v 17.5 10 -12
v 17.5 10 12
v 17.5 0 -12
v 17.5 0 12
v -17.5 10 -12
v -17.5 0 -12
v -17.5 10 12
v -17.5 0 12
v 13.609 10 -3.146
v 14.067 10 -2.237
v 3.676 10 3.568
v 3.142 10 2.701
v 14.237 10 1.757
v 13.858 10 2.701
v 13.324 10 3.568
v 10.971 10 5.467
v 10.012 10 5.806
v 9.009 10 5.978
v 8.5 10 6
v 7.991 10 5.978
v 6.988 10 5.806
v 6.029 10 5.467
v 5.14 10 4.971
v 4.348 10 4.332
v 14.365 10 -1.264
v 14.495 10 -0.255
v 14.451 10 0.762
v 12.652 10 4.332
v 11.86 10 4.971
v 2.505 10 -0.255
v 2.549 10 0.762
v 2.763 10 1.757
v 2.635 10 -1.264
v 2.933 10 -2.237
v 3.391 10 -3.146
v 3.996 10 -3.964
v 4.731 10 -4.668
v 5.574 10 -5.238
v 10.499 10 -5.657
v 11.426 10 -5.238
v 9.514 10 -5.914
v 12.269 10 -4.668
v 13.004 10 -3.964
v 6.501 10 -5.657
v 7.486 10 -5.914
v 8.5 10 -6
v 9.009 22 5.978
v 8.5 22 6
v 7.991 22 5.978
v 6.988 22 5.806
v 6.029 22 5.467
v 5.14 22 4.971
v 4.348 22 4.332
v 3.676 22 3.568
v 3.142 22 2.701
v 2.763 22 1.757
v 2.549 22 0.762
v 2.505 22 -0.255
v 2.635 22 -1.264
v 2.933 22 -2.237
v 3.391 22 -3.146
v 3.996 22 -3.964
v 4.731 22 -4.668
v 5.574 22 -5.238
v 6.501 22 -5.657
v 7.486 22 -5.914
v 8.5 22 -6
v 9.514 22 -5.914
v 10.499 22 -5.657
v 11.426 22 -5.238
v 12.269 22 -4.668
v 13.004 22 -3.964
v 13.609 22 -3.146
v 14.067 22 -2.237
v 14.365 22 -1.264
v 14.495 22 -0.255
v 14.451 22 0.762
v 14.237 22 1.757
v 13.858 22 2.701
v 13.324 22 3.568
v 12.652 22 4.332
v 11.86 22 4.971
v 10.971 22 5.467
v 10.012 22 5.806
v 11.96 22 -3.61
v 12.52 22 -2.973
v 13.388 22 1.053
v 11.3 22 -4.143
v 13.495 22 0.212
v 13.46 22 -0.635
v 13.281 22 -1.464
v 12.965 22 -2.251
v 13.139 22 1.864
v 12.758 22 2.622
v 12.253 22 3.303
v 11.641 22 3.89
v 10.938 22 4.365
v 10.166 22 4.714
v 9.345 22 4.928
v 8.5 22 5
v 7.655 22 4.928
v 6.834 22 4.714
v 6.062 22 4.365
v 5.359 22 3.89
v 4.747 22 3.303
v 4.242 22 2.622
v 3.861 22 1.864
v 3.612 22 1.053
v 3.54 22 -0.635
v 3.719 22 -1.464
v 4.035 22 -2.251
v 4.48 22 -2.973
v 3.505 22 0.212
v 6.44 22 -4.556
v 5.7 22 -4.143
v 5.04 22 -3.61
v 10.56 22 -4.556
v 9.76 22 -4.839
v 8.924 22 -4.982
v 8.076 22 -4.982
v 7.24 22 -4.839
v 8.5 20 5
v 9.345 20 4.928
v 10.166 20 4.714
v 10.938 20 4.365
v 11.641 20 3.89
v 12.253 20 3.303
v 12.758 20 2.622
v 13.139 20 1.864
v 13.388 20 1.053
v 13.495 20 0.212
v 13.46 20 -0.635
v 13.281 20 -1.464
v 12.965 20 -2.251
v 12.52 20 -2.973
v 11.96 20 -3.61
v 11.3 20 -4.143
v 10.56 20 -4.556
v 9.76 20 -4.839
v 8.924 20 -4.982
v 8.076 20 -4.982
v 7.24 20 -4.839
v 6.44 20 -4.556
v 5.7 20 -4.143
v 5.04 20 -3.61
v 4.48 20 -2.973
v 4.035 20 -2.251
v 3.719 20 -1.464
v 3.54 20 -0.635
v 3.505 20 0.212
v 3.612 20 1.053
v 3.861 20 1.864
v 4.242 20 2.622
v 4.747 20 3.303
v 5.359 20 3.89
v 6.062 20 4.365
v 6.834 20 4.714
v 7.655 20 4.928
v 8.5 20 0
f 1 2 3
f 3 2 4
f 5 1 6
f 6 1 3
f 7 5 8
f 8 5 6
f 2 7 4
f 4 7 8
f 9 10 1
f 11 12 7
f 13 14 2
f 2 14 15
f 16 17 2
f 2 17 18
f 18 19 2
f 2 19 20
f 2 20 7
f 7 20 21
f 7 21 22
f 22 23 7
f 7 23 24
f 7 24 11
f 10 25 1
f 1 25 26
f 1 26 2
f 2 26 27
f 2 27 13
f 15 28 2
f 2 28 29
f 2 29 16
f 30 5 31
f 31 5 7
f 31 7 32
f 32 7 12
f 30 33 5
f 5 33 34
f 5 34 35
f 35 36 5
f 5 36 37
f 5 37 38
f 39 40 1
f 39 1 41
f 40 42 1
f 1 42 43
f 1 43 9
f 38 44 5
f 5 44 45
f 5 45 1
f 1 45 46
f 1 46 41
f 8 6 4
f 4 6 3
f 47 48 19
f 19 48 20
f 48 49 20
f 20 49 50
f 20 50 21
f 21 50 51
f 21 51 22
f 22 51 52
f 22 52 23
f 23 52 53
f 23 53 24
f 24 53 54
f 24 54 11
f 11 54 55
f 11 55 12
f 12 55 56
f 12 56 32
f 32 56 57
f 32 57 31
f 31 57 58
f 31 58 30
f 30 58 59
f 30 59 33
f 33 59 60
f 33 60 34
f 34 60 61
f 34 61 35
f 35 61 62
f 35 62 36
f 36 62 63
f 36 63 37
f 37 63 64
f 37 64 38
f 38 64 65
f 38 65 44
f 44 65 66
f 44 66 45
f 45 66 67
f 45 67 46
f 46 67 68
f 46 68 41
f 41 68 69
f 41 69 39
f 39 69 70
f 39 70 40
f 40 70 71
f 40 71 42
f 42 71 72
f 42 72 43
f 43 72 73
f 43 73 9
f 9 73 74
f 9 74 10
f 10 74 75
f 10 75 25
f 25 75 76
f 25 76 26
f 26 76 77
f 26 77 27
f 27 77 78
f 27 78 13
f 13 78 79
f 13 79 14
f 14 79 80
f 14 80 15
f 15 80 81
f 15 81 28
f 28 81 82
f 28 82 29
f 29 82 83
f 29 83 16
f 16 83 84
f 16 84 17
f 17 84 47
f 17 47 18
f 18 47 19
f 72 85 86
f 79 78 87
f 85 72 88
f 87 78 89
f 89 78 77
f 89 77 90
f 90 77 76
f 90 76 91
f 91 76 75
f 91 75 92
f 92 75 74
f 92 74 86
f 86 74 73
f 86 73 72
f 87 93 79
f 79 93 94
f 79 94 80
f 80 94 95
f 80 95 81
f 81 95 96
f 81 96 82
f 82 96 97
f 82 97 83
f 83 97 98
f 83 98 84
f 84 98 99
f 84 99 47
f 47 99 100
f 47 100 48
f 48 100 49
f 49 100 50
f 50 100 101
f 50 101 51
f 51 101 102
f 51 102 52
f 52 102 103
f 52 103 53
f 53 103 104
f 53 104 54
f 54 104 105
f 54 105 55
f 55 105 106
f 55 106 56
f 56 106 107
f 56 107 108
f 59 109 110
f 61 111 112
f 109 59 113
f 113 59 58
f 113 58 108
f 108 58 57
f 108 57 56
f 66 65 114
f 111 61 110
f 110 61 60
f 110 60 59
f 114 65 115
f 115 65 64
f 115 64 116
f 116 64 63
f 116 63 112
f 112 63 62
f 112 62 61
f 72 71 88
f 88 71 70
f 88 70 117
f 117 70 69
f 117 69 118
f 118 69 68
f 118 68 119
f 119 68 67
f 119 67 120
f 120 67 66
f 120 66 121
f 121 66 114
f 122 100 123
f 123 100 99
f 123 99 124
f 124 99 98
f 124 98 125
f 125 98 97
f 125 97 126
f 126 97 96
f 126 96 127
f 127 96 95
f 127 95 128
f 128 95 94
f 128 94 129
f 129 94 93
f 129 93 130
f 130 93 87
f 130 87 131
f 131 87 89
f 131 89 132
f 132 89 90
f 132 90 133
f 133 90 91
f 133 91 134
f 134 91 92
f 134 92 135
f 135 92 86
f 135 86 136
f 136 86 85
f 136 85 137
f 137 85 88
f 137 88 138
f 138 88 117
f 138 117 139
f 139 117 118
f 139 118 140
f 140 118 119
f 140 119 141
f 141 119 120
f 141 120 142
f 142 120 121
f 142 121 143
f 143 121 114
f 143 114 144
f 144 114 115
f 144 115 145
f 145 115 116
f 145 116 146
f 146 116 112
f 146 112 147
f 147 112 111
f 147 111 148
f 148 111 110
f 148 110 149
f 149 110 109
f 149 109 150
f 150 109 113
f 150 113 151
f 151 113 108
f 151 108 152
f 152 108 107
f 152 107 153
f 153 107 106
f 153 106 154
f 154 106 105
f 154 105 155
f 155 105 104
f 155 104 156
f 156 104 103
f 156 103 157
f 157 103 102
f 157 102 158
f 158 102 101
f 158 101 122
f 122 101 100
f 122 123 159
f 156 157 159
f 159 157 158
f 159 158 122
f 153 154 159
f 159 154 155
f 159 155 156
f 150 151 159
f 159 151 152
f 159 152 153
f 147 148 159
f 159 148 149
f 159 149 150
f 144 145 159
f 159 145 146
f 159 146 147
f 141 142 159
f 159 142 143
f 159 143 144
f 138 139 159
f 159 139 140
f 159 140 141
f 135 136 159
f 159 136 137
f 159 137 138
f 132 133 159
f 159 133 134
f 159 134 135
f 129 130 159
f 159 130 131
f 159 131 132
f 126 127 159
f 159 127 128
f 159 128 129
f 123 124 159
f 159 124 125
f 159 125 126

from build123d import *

# Parameters (mm, degrees)
SKETCH2_W           = 35
SKETCH2_H           = 24
BOSS_EXTRUDE1_DEPTH = 10
SKETCH3_R           = 6
BOSS_EXTRUDE2_DEPTH = 12
SKETCH4_R           = 5
CUT_EXTRUDE2_DEPTH  = 2


with BuildPart() as part:
    # Sketch2 → Boss-Extrude1 (new body)
    with BuildSketch(Plane(origin=(0, 0, 0), x_dir=(1, 0, 0), z_dir=(0, 1, 0))):
        Rectangle(SKETCH2_W, SKETCH2_H)
    extrude(amount=BOSS_EXTRUDE1_DEPTH)

    # Sketch3 → Boss-Extrude2 (add)
    with BuildSketch(Plane(origin=(0, 10, 0), x_dir=(1, 0, 0), z_dir=(0, 1, 0))):
        with Locations((8.5, 0)):
            Circle(SKETCH3_R)
    extrude(amount=BOSS_EXTRUDE2_DEPTH)

    # Sketch4 → Cut-Extrude2 (cut)
    with BuildSketch(Plane(origin=(0, 22, 0), x_dir=(1, 0, 0), z_dir=(0, 1, 0))):
        with Locations((8.5, 0)):
            Circle(SKETCH4_R)
    extrude(amount=-CUT_EXTRUDE2_DEPTH, mode=Mode.SUBTRACT)


solid = part.part
